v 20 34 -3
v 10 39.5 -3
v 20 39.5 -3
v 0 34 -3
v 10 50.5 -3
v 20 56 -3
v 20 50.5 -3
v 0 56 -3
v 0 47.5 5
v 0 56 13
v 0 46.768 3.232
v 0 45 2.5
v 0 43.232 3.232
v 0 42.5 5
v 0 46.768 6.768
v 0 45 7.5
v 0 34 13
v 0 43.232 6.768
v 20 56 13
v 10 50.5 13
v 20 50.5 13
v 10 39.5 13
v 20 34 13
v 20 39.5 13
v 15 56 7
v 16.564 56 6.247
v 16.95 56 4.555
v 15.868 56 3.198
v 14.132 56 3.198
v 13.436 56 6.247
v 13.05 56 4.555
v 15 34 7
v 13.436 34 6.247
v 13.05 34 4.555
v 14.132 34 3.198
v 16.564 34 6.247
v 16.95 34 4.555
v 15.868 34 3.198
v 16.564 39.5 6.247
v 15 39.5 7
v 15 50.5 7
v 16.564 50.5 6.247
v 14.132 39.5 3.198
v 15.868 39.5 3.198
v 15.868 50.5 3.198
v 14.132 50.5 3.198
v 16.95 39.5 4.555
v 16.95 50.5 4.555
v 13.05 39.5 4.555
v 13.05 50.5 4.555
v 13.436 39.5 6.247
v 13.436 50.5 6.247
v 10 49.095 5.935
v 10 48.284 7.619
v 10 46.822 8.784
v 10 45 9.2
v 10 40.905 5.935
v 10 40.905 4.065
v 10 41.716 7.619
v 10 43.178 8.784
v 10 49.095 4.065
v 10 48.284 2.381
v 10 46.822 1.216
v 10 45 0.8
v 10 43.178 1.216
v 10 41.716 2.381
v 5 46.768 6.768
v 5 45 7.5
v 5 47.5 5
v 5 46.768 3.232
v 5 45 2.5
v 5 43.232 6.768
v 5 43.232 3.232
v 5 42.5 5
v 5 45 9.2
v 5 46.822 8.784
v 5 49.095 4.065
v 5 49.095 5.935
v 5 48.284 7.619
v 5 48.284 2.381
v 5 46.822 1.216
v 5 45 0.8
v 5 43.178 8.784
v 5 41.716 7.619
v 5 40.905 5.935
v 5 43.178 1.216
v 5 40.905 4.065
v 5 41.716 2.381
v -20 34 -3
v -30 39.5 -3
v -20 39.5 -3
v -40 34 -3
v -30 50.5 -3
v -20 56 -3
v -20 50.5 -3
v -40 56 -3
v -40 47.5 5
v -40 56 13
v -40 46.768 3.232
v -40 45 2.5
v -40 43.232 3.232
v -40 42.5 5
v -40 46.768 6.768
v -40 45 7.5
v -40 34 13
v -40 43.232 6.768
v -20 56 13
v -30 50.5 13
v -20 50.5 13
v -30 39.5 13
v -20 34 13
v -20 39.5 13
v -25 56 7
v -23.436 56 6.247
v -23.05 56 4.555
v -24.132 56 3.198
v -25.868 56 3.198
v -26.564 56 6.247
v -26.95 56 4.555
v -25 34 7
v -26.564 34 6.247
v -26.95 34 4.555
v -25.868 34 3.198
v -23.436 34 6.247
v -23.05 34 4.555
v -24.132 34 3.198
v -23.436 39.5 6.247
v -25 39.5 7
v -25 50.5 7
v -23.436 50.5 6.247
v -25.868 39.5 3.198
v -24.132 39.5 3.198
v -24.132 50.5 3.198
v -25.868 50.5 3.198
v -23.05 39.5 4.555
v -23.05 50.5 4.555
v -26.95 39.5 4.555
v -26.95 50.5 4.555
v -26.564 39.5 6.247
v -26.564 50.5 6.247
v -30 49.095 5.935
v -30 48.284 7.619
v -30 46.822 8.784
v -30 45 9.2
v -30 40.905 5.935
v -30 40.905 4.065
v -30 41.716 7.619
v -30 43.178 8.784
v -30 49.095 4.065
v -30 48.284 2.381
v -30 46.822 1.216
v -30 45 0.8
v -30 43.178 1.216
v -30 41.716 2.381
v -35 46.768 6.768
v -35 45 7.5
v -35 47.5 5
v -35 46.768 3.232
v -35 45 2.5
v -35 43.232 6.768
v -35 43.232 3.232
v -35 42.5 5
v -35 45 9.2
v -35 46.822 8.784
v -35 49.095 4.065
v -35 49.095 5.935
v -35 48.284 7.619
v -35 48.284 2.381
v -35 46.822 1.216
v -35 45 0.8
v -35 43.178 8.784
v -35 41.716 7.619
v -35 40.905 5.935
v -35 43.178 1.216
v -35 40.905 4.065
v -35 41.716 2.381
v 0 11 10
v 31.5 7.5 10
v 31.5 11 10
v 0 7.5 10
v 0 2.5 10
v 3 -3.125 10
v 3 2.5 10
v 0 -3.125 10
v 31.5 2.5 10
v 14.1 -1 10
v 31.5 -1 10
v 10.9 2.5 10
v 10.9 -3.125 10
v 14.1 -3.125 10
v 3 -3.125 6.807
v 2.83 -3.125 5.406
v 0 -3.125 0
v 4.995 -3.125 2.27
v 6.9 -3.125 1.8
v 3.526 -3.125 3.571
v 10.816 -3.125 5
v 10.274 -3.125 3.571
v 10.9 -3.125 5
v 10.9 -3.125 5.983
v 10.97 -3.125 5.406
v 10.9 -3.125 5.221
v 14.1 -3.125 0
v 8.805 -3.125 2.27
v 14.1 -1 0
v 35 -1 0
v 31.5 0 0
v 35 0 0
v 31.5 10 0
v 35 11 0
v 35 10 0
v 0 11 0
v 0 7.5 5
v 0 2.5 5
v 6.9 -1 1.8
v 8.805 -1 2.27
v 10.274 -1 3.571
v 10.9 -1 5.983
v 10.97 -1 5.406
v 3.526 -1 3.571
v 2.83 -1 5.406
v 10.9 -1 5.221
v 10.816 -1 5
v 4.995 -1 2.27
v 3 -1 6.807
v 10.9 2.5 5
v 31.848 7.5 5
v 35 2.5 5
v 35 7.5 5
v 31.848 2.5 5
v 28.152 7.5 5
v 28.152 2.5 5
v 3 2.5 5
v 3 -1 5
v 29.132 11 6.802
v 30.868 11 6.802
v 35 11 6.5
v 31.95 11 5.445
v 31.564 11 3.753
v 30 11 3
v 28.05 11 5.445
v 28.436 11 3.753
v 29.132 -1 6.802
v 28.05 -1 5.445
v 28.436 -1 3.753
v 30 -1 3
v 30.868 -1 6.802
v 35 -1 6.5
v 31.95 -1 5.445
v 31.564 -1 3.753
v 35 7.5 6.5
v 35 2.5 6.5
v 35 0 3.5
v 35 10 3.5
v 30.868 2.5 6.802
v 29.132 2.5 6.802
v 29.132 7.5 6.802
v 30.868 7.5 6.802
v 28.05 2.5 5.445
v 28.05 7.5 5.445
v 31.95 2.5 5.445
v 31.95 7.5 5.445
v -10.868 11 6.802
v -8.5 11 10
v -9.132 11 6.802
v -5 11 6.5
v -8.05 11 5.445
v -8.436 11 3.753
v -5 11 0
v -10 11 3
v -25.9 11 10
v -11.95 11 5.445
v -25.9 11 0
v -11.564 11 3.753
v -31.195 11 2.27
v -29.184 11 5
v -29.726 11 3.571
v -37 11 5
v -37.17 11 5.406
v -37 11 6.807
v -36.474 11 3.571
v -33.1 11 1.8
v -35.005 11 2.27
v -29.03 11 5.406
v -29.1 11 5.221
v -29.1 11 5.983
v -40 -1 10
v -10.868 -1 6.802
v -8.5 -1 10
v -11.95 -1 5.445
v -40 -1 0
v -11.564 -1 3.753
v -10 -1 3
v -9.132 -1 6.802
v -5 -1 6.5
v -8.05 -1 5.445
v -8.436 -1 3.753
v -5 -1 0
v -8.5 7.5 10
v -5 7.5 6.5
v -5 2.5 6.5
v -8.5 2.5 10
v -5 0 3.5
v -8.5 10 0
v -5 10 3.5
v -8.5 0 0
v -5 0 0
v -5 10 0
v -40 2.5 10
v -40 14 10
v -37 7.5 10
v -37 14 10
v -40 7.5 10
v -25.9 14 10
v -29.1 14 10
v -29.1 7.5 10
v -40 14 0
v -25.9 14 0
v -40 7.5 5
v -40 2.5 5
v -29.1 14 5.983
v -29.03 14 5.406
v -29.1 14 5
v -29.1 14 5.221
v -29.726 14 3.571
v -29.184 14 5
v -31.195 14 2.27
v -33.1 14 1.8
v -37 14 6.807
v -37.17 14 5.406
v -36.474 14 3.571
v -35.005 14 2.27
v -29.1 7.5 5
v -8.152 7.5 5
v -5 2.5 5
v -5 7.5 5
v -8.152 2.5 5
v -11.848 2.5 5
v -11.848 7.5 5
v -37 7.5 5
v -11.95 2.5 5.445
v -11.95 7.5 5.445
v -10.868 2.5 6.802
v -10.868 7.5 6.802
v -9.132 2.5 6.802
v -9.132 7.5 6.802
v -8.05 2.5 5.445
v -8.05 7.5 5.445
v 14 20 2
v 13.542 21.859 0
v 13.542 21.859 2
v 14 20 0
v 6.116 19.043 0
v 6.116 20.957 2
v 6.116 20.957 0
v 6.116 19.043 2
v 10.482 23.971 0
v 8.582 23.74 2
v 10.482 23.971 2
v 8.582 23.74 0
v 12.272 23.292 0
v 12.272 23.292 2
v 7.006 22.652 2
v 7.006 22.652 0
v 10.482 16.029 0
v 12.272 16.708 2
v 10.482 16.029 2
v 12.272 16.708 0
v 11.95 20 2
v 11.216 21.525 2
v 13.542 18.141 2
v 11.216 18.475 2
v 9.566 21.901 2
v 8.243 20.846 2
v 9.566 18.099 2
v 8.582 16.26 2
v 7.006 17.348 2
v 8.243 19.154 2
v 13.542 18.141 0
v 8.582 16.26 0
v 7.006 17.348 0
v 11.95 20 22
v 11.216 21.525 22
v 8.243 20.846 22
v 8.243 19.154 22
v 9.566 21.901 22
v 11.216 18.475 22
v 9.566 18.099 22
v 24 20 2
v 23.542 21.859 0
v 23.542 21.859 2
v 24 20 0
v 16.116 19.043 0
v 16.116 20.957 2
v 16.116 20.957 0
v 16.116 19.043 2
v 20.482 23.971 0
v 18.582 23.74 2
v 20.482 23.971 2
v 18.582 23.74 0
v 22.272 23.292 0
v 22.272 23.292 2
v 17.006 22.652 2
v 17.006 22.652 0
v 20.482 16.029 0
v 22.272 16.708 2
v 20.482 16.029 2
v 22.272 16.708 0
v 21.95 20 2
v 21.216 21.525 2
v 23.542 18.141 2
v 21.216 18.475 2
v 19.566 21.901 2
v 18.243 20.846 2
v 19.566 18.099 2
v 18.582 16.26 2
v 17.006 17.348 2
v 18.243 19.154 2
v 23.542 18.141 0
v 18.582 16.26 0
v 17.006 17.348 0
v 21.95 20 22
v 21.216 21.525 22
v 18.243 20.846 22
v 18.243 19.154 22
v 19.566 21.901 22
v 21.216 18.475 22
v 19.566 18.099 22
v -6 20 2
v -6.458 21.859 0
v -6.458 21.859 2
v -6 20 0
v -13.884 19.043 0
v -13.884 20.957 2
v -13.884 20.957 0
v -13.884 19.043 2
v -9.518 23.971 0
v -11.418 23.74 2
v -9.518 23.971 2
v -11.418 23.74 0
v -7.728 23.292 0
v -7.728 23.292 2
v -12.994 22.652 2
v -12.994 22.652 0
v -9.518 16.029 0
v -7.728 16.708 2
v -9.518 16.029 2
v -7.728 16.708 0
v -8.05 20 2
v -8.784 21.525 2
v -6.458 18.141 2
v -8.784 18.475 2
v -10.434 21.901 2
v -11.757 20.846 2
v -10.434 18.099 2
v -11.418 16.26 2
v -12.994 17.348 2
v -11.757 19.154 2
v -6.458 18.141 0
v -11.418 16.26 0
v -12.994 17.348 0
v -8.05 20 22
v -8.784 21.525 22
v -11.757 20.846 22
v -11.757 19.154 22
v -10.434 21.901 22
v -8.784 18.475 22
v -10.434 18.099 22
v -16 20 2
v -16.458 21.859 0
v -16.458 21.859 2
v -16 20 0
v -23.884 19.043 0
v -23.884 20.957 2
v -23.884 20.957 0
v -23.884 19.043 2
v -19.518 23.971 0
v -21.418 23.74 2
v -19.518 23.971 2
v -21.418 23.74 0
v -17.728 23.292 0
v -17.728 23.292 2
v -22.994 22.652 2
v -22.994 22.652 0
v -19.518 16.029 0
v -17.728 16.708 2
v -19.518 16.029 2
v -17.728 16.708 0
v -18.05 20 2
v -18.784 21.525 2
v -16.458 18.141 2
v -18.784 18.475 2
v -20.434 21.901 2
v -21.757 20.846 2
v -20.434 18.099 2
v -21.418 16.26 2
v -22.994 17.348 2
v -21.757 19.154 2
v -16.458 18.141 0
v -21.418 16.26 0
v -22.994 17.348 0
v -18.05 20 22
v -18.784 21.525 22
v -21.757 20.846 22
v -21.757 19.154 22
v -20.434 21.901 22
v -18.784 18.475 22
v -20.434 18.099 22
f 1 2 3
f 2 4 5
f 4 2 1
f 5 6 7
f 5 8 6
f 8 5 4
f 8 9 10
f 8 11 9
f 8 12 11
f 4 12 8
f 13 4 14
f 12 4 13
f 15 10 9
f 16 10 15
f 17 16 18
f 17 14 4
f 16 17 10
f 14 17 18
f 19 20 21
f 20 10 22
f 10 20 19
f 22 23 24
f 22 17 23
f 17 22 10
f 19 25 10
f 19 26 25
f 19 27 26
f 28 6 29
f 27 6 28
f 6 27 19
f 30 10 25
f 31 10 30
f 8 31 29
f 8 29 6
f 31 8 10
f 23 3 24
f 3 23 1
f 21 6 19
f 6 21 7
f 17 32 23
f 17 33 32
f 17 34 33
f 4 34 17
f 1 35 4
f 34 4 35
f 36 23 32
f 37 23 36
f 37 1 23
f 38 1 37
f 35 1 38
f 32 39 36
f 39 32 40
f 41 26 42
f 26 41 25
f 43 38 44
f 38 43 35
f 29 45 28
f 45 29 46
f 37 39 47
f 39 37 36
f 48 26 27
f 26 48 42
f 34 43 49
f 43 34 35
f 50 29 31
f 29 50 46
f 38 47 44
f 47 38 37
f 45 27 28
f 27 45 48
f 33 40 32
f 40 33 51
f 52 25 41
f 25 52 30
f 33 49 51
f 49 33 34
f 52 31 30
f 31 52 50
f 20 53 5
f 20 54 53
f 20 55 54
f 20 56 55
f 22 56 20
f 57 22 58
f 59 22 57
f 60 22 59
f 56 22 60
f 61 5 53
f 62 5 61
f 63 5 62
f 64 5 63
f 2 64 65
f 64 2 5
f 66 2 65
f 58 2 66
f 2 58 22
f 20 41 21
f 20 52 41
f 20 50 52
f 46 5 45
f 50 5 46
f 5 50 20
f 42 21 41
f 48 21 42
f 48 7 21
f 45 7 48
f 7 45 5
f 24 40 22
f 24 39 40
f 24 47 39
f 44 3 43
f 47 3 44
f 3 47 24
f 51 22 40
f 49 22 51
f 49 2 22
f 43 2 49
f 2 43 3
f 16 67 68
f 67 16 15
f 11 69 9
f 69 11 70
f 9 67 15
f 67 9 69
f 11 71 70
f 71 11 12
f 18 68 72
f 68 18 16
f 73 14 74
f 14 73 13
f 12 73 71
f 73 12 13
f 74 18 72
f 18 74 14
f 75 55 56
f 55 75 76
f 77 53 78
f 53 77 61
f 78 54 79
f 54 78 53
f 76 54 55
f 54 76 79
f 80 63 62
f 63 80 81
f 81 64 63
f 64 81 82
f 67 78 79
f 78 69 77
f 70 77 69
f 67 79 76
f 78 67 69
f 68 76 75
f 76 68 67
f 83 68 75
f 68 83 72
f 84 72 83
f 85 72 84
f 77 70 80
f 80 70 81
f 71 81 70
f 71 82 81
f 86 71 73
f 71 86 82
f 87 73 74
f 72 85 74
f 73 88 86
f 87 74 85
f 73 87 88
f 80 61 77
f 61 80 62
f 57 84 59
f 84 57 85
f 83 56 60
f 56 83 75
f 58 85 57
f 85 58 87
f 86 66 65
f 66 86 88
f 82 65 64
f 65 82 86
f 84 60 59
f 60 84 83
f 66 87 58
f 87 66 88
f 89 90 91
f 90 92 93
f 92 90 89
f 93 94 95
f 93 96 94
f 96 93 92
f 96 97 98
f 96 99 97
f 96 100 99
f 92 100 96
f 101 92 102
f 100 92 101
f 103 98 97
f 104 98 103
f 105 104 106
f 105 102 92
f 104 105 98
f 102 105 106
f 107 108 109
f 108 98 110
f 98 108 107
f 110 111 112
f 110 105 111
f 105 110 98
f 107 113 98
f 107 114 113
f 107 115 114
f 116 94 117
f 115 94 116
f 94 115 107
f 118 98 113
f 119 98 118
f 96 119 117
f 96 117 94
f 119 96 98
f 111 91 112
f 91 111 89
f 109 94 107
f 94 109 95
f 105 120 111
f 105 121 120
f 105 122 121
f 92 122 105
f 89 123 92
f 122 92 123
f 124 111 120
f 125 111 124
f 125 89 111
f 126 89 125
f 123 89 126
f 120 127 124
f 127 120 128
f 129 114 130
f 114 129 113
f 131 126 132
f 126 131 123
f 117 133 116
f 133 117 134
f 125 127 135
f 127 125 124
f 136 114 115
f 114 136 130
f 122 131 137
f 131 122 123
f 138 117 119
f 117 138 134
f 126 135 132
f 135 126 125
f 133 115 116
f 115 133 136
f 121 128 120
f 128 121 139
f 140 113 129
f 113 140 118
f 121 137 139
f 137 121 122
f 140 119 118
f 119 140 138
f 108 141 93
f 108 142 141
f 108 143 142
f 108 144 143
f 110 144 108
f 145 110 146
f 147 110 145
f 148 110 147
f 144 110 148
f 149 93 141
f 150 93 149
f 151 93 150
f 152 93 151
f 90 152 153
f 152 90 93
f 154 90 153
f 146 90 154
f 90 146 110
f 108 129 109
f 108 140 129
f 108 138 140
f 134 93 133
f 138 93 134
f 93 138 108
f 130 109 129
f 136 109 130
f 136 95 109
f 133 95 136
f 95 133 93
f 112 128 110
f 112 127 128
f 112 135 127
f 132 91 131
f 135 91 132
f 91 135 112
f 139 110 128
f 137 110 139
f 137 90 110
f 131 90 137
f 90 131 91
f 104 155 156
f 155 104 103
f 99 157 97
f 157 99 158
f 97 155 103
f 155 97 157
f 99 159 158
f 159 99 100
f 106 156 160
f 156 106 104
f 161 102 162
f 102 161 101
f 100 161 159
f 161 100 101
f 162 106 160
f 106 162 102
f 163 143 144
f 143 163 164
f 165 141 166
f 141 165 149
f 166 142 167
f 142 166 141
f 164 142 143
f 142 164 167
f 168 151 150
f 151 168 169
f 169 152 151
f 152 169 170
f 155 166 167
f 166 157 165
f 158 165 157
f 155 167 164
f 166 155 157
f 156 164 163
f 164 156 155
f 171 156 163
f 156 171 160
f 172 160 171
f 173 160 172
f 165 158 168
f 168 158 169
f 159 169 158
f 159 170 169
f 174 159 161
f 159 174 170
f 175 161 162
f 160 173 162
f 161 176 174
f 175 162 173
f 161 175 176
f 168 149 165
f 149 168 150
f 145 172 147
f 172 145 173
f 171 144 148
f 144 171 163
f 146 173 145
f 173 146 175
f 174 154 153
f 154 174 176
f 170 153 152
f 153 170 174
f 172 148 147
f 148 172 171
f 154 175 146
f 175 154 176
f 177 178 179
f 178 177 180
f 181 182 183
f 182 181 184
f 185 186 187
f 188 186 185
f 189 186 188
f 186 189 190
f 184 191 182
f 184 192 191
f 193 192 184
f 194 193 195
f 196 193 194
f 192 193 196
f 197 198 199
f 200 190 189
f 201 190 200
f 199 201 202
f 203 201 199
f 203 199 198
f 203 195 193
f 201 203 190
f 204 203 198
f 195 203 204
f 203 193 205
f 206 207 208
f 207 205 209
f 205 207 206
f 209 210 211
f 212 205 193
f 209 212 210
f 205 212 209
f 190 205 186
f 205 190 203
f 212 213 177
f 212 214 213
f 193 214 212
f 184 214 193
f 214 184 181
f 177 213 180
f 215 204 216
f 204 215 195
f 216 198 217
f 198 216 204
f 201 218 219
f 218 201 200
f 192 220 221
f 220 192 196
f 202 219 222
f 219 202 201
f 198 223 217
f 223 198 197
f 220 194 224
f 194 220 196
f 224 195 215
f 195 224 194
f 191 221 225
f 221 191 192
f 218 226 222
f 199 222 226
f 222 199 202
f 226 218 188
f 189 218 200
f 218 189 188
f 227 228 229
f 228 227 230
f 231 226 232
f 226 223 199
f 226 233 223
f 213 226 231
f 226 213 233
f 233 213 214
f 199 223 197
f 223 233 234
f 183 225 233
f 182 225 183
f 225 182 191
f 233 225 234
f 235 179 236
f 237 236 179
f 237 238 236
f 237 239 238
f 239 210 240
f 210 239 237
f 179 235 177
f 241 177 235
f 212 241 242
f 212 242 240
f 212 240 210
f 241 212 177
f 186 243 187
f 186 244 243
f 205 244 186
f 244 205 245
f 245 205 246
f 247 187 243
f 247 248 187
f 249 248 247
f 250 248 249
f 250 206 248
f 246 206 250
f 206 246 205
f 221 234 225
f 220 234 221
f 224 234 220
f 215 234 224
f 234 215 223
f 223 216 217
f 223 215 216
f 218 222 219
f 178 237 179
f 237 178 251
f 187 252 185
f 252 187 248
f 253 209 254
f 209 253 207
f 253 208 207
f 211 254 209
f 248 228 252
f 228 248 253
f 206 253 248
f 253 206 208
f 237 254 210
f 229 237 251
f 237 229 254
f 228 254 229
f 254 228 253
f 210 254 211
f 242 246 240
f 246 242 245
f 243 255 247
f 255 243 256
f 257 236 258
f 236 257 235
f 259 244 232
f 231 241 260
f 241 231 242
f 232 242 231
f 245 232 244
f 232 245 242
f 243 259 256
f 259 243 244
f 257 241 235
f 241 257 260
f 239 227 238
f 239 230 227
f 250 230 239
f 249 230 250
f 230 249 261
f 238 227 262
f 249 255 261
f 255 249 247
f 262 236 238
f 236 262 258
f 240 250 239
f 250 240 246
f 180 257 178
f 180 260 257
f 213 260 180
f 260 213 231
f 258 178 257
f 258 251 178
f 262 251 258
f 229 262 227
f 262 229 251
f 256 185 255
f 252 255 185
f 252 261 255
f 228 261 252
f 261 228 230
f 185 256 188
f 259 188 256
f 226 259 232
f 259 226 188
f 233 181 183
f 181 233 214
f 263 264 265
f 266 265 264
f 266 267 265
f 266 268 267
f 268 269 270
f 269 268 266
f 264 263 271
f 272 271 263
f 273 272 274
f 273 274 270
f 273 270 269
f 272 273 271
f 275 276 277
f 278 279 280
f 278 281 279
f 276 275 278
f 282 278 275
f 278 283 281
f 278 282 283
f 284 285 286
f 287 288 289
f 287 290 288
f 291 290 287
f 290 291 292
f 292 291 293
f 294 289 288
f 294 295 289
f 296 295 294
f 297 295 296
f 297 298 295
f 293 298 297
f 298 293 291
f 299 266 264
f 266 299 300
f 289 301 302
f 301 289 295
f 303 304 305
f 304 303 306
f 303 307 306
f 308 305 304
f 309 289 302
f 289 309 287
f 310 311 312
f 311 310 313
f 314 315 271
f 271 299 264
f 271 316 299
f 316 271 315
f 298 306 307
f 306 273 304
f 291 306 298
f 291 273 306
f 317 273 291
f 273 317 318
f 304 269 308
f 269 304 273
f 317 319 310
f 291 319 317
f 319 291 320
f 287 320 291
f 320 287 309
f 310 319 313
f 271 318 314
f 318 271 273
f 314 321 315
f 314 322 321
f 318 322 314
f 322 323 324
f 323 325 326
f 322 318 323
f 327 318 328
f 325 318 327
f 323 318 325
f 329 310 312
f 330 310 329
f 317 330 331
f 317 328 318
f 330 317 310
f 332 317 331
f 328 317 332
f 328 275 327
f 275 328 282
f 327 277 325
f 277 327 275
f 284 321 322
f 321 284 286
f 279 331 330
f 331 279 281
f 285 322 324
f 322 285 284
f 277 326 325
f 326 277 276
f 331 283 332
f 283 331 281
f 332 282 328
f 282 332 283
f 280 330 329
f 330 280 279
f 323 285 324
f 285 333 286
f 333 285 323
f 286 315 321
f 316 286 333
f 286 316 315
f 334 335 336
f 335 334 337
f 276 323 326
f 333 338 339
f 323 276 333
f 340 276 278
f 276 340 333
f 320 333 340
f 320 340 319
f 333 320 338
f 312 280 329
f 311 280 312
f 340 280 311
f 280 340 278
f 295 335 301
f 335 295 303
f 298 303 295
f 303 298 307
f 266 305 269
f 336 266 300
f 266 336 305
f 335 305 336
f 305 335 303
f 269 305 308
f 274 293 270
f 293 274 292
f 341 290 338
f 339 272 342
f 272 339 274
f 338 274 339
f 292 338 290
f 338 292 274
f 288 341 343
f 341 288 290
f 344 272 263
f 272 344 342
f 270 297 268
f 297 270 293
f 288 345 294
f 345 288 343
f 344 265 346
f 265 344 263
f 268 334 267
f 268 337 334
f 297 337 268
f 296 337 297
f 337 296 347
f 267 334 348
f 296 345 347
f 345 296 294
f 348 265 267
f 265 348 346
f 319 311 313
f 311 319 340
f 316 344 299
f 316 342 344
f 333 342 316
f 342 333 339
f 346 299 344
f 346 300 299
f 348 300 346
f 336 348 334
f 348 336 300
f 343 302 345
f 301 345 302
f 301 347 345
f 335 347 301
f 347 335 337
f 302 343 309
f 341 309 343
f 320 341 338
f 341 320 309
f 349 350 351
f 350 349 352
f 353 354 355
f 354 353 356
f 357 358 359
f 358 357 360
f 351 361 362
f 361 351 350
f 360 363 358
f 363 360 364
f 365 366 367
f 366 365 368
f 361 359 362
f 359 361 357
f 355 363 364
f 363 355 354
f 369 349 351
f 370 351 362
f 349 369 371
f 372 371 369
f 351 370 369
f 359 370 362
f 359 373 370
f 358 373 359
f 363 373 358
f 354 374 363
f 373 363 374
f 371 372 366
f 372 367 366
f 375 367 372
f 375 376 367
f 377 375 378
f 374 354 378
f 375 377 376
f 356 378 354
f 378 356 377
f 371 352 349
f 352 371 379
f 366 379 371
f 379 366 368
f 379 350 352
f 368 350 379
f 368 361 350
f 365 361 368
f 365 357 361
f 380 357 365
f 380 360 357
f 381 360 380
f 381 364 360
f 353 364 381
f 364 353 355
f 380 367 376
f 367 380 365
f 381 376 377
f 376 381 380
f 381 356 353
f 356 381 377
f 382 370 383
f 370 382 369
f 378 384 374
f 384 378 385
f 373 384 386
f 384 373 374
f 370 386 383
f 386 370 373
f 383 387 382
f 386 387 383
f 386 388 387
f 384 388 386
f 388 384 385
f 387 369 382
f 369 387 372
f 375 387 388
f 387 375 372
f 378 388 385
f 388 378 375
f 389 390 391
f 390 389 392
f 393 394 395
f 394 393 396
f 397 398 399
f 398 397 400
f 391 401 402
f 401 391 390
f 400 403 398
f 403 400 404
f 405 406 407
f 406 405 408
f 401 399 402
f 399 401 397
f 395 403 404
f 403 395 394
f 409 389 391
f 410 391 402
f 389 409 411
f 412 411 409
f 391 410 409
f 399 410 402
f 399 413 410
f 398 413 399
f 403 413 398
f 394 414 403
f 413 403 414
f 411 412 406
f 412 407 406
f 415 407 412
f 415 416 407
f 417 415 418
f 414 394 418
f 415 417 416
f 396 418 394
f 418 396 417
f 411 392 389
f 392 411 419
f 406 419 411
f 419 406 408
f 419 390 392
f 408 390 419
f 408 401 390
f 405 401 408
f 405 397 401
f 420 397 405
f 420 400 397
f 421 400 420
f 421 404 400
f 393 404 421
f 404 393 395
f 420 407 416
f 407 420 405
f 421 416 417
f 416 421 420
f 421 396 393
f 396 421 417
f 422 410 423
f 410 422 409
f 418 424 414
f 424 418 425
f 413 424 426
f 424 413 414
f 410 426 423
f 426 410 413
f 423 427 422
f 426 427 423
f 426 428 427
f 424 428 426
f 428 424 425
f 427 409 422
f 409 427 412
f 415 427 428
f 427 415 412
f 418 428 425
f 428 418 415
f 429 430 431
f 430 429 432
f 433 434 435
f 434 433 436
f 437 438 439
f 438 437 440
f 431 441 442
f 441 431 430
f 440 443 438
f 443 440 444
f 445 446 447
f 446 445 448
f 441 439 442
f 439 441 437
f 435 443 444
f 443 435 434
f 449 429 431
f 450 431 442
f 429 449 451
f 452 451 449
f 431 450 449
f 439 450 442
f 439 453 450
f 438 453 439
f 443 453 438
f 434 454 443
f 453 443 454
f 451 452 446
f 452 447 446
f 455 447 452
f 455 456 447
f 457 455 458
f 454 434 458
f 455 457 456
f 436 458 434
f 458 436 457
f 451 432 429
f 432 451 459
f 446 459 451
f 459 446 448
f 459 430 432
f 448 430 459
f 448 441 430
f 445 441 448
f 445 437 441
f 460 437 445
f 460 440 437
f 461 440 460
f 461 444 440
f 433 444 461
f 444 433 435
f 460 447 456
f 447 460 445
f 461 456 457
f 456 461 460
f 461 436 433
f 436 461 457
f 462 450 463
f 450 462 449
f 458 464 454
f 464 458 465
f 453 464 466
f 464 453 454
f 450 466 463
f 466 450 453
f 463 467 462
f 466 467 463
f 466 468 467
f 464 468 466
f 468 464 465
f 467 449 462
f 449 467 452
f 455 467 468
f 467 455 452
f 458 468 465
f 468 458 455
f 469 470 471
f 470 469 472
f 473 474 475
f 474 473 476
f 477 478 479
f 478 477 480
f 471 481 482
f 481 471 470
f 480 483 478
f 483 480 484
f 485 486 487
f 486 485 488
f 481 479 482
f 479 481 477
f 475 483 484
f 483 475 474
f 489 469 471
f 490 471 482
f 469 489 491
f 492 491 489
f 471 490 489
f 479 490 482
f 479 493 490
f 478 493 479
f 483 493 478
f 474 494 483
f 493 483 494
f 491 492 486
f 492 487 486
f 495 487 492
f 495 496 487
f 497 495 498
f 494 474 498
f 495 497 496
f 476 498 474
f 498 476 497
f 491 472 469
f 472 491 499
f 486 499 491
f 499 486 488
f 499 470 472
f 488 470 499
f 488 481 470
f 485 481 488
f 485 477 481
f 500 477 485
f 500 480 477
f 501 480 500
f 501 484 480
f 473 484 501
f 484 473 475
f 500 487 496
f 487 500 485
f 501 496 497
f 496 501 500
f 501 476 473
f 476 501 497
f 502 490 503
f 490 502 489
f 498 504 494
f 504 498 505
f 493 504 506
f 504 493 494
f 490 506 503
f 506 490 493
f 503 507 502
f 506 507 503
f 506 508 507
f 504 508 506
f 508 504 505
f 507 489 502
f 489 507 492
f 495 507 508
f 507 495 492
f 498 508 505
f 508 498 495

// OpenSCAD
/*
Erica Umlor Wire Following Sensor Holder for MSE4777

Created: 04/16/2020
Description: This is for my GrowBot project
for senior design. These are the ends to the wire 
following sensor holders. One end connects to the 
frame of our robot and the other end has a slot for 
the inductor to sit in. Don't try to edit this code.
Most of it is not parametric, and it should fit just
fine with this this project. 
*/

// print all 
ends();
pins(); 

// values
holeL = 15;    // length of pin hole
holeR = 2;     // pin hole radius
brace = 4;     // width 
w = 10;        // height and length
h1 = 35;       // length of inductor end
h2 = 25;       // length of inductor slot
depth = 4.1;   // depth of inductor slot
width = depth; // depth of inductor slot
pR = holeR-.05; 
more = 2;

module ends() {
  translate([20,0,0])
  botEnd();
  translate([-20,0,0])
  botEnd();
  sensorEndR();
  translate([-40,0,0])   
  sensorEndL();
}

module pins() {  
  translate([10,20,0]) 
  pin();
  translate([20,20,0]) 
  pin();    
  translate([-10,20,0]) 
  pin();
  translate([-20,20,0]) 
  pin();
}

module botEnd() {   
    translate([0,40,0]) {
      rotate([0,270,0]) {
        difference() {
          // bottom bracket
          translate([-3,-brace/2-4,0])
          cube([w+6,w+brace+8,w*2]);
    
          // bottom hole
          translate([w/2,-(holeL-10)/2-5,w/2])
          rotate([-90,0,0])
          cylinder(holeL+10,holeR,holeR);
       
          // bracket cutout
          translate([-4,-0.5,0])
          cube([w+8,w+1,w]);
        
          // middle hole
          translate([brace+1,w/2,0])
          cylinder(holeL*2,3-.5,3-.5);
        
          translate([brace+1,w/2,-3])
          cylinder(holeL+3,3+1.2,3+1.2);
        }
      }
    }
}

module sensorEndL() {
    translate([0,0,10]) {
      rotate([0,90,0]) {
        union() {
          translate([0,22,00]) {
            difference() {  
              // right inductor pocket
              rotate([90,0,0]) 
              translate([0,0,8])  
              cube([w,w+width,h2/8]);  

              // pocket slot hole
              rotate([90,0,0])
              translate([width,6.9,0])  
              cylinder(h2/2,width,width); 
                
              // inductor slot
              translate([0,-15,3])
              cube([5,30,8.8+width-5]);
            } 
          }        
          difference() {       
            // main body
            translate([0,-more/2,0])
            cube([w,w+more,h1]);
    
            // top hole
            translate([w/2,-20,h1-w/2])
            rotate([-90,0,0])
            cylinder(holeL*4,holeR,holeR);
        
            // wire slot
            translate([0,w/4,0])
            cube([w/2,w/2,h1]);
         
            // inductor cutout
            translate([0,5,3])
            cube([5,30,8.8+width-5]);
             
            rotate([0,0,270]){
              translate([-w,0,0]) {
                // chamfer top
                translate([-more/2,-w/4,h1-w/2-1])
                rotate([45,0,0])
                cube([w+more,w,w]);

                // chamfer bottom
                translate([0,w*5/4,h1-w/2-1])
                rotate([45,0,0])
                cube([w,w,w]);
              }
            }
          }
        }    
      }   
    }
}

module sensorEndR() {
    translate([0,0,10]) {
      rotate([0,90,0]) {
        union() {
          difference() {  
            rotate([90,0,0])
             // right inductor pocket
             translate([0,0,0])  
             cube([w,w+width,h2/8]);  
             
             // pocket slot hole
             rotate([90,0,0])
             translate([width,6.9,0])  
             cylinder(h2/2,width,width); 
              
             // inductor cutout 
             translate([0,-15,3])
             cube([5,30,8.8+width-5]);
          }           
          difference() {       
            // main body
            translate([0,-more/2,0])
            cube([w,w+more,h1]);
    
            // top hole
            translate([w/2,-20,h1-w/2])
            rotate([-90,0,0])
            cylinder(holeL*4,holeR,holeR);
        
            // wire slot
            translate([0,w/4,0])
            cube([w/2,w/2,h1]);
         
            // inductor slot
            translate([0,-3,3])
            cube([5,5+more,8.8+width-5]);
             
            rotate([0,0,270]){
              translate([-w,0,0]) {
                // chamfer top
                translate([-more/2,-w/4,h1-w/2-1])
                rotate([45,0,0])
                cube([w+more,w,w]);

                // chamfer bottom
                translate([0,w*5/4,h1-w/2-1])
                rotate([45,0,0])
                cube([w,w,w]);
              }
            }
          }
        }    
      }   
    }
}

module pin() {
  union(){
    cylinder(2,holeR+2,holeR+2);
    cylinder(holeL+7,pR,pR);
  }
}
